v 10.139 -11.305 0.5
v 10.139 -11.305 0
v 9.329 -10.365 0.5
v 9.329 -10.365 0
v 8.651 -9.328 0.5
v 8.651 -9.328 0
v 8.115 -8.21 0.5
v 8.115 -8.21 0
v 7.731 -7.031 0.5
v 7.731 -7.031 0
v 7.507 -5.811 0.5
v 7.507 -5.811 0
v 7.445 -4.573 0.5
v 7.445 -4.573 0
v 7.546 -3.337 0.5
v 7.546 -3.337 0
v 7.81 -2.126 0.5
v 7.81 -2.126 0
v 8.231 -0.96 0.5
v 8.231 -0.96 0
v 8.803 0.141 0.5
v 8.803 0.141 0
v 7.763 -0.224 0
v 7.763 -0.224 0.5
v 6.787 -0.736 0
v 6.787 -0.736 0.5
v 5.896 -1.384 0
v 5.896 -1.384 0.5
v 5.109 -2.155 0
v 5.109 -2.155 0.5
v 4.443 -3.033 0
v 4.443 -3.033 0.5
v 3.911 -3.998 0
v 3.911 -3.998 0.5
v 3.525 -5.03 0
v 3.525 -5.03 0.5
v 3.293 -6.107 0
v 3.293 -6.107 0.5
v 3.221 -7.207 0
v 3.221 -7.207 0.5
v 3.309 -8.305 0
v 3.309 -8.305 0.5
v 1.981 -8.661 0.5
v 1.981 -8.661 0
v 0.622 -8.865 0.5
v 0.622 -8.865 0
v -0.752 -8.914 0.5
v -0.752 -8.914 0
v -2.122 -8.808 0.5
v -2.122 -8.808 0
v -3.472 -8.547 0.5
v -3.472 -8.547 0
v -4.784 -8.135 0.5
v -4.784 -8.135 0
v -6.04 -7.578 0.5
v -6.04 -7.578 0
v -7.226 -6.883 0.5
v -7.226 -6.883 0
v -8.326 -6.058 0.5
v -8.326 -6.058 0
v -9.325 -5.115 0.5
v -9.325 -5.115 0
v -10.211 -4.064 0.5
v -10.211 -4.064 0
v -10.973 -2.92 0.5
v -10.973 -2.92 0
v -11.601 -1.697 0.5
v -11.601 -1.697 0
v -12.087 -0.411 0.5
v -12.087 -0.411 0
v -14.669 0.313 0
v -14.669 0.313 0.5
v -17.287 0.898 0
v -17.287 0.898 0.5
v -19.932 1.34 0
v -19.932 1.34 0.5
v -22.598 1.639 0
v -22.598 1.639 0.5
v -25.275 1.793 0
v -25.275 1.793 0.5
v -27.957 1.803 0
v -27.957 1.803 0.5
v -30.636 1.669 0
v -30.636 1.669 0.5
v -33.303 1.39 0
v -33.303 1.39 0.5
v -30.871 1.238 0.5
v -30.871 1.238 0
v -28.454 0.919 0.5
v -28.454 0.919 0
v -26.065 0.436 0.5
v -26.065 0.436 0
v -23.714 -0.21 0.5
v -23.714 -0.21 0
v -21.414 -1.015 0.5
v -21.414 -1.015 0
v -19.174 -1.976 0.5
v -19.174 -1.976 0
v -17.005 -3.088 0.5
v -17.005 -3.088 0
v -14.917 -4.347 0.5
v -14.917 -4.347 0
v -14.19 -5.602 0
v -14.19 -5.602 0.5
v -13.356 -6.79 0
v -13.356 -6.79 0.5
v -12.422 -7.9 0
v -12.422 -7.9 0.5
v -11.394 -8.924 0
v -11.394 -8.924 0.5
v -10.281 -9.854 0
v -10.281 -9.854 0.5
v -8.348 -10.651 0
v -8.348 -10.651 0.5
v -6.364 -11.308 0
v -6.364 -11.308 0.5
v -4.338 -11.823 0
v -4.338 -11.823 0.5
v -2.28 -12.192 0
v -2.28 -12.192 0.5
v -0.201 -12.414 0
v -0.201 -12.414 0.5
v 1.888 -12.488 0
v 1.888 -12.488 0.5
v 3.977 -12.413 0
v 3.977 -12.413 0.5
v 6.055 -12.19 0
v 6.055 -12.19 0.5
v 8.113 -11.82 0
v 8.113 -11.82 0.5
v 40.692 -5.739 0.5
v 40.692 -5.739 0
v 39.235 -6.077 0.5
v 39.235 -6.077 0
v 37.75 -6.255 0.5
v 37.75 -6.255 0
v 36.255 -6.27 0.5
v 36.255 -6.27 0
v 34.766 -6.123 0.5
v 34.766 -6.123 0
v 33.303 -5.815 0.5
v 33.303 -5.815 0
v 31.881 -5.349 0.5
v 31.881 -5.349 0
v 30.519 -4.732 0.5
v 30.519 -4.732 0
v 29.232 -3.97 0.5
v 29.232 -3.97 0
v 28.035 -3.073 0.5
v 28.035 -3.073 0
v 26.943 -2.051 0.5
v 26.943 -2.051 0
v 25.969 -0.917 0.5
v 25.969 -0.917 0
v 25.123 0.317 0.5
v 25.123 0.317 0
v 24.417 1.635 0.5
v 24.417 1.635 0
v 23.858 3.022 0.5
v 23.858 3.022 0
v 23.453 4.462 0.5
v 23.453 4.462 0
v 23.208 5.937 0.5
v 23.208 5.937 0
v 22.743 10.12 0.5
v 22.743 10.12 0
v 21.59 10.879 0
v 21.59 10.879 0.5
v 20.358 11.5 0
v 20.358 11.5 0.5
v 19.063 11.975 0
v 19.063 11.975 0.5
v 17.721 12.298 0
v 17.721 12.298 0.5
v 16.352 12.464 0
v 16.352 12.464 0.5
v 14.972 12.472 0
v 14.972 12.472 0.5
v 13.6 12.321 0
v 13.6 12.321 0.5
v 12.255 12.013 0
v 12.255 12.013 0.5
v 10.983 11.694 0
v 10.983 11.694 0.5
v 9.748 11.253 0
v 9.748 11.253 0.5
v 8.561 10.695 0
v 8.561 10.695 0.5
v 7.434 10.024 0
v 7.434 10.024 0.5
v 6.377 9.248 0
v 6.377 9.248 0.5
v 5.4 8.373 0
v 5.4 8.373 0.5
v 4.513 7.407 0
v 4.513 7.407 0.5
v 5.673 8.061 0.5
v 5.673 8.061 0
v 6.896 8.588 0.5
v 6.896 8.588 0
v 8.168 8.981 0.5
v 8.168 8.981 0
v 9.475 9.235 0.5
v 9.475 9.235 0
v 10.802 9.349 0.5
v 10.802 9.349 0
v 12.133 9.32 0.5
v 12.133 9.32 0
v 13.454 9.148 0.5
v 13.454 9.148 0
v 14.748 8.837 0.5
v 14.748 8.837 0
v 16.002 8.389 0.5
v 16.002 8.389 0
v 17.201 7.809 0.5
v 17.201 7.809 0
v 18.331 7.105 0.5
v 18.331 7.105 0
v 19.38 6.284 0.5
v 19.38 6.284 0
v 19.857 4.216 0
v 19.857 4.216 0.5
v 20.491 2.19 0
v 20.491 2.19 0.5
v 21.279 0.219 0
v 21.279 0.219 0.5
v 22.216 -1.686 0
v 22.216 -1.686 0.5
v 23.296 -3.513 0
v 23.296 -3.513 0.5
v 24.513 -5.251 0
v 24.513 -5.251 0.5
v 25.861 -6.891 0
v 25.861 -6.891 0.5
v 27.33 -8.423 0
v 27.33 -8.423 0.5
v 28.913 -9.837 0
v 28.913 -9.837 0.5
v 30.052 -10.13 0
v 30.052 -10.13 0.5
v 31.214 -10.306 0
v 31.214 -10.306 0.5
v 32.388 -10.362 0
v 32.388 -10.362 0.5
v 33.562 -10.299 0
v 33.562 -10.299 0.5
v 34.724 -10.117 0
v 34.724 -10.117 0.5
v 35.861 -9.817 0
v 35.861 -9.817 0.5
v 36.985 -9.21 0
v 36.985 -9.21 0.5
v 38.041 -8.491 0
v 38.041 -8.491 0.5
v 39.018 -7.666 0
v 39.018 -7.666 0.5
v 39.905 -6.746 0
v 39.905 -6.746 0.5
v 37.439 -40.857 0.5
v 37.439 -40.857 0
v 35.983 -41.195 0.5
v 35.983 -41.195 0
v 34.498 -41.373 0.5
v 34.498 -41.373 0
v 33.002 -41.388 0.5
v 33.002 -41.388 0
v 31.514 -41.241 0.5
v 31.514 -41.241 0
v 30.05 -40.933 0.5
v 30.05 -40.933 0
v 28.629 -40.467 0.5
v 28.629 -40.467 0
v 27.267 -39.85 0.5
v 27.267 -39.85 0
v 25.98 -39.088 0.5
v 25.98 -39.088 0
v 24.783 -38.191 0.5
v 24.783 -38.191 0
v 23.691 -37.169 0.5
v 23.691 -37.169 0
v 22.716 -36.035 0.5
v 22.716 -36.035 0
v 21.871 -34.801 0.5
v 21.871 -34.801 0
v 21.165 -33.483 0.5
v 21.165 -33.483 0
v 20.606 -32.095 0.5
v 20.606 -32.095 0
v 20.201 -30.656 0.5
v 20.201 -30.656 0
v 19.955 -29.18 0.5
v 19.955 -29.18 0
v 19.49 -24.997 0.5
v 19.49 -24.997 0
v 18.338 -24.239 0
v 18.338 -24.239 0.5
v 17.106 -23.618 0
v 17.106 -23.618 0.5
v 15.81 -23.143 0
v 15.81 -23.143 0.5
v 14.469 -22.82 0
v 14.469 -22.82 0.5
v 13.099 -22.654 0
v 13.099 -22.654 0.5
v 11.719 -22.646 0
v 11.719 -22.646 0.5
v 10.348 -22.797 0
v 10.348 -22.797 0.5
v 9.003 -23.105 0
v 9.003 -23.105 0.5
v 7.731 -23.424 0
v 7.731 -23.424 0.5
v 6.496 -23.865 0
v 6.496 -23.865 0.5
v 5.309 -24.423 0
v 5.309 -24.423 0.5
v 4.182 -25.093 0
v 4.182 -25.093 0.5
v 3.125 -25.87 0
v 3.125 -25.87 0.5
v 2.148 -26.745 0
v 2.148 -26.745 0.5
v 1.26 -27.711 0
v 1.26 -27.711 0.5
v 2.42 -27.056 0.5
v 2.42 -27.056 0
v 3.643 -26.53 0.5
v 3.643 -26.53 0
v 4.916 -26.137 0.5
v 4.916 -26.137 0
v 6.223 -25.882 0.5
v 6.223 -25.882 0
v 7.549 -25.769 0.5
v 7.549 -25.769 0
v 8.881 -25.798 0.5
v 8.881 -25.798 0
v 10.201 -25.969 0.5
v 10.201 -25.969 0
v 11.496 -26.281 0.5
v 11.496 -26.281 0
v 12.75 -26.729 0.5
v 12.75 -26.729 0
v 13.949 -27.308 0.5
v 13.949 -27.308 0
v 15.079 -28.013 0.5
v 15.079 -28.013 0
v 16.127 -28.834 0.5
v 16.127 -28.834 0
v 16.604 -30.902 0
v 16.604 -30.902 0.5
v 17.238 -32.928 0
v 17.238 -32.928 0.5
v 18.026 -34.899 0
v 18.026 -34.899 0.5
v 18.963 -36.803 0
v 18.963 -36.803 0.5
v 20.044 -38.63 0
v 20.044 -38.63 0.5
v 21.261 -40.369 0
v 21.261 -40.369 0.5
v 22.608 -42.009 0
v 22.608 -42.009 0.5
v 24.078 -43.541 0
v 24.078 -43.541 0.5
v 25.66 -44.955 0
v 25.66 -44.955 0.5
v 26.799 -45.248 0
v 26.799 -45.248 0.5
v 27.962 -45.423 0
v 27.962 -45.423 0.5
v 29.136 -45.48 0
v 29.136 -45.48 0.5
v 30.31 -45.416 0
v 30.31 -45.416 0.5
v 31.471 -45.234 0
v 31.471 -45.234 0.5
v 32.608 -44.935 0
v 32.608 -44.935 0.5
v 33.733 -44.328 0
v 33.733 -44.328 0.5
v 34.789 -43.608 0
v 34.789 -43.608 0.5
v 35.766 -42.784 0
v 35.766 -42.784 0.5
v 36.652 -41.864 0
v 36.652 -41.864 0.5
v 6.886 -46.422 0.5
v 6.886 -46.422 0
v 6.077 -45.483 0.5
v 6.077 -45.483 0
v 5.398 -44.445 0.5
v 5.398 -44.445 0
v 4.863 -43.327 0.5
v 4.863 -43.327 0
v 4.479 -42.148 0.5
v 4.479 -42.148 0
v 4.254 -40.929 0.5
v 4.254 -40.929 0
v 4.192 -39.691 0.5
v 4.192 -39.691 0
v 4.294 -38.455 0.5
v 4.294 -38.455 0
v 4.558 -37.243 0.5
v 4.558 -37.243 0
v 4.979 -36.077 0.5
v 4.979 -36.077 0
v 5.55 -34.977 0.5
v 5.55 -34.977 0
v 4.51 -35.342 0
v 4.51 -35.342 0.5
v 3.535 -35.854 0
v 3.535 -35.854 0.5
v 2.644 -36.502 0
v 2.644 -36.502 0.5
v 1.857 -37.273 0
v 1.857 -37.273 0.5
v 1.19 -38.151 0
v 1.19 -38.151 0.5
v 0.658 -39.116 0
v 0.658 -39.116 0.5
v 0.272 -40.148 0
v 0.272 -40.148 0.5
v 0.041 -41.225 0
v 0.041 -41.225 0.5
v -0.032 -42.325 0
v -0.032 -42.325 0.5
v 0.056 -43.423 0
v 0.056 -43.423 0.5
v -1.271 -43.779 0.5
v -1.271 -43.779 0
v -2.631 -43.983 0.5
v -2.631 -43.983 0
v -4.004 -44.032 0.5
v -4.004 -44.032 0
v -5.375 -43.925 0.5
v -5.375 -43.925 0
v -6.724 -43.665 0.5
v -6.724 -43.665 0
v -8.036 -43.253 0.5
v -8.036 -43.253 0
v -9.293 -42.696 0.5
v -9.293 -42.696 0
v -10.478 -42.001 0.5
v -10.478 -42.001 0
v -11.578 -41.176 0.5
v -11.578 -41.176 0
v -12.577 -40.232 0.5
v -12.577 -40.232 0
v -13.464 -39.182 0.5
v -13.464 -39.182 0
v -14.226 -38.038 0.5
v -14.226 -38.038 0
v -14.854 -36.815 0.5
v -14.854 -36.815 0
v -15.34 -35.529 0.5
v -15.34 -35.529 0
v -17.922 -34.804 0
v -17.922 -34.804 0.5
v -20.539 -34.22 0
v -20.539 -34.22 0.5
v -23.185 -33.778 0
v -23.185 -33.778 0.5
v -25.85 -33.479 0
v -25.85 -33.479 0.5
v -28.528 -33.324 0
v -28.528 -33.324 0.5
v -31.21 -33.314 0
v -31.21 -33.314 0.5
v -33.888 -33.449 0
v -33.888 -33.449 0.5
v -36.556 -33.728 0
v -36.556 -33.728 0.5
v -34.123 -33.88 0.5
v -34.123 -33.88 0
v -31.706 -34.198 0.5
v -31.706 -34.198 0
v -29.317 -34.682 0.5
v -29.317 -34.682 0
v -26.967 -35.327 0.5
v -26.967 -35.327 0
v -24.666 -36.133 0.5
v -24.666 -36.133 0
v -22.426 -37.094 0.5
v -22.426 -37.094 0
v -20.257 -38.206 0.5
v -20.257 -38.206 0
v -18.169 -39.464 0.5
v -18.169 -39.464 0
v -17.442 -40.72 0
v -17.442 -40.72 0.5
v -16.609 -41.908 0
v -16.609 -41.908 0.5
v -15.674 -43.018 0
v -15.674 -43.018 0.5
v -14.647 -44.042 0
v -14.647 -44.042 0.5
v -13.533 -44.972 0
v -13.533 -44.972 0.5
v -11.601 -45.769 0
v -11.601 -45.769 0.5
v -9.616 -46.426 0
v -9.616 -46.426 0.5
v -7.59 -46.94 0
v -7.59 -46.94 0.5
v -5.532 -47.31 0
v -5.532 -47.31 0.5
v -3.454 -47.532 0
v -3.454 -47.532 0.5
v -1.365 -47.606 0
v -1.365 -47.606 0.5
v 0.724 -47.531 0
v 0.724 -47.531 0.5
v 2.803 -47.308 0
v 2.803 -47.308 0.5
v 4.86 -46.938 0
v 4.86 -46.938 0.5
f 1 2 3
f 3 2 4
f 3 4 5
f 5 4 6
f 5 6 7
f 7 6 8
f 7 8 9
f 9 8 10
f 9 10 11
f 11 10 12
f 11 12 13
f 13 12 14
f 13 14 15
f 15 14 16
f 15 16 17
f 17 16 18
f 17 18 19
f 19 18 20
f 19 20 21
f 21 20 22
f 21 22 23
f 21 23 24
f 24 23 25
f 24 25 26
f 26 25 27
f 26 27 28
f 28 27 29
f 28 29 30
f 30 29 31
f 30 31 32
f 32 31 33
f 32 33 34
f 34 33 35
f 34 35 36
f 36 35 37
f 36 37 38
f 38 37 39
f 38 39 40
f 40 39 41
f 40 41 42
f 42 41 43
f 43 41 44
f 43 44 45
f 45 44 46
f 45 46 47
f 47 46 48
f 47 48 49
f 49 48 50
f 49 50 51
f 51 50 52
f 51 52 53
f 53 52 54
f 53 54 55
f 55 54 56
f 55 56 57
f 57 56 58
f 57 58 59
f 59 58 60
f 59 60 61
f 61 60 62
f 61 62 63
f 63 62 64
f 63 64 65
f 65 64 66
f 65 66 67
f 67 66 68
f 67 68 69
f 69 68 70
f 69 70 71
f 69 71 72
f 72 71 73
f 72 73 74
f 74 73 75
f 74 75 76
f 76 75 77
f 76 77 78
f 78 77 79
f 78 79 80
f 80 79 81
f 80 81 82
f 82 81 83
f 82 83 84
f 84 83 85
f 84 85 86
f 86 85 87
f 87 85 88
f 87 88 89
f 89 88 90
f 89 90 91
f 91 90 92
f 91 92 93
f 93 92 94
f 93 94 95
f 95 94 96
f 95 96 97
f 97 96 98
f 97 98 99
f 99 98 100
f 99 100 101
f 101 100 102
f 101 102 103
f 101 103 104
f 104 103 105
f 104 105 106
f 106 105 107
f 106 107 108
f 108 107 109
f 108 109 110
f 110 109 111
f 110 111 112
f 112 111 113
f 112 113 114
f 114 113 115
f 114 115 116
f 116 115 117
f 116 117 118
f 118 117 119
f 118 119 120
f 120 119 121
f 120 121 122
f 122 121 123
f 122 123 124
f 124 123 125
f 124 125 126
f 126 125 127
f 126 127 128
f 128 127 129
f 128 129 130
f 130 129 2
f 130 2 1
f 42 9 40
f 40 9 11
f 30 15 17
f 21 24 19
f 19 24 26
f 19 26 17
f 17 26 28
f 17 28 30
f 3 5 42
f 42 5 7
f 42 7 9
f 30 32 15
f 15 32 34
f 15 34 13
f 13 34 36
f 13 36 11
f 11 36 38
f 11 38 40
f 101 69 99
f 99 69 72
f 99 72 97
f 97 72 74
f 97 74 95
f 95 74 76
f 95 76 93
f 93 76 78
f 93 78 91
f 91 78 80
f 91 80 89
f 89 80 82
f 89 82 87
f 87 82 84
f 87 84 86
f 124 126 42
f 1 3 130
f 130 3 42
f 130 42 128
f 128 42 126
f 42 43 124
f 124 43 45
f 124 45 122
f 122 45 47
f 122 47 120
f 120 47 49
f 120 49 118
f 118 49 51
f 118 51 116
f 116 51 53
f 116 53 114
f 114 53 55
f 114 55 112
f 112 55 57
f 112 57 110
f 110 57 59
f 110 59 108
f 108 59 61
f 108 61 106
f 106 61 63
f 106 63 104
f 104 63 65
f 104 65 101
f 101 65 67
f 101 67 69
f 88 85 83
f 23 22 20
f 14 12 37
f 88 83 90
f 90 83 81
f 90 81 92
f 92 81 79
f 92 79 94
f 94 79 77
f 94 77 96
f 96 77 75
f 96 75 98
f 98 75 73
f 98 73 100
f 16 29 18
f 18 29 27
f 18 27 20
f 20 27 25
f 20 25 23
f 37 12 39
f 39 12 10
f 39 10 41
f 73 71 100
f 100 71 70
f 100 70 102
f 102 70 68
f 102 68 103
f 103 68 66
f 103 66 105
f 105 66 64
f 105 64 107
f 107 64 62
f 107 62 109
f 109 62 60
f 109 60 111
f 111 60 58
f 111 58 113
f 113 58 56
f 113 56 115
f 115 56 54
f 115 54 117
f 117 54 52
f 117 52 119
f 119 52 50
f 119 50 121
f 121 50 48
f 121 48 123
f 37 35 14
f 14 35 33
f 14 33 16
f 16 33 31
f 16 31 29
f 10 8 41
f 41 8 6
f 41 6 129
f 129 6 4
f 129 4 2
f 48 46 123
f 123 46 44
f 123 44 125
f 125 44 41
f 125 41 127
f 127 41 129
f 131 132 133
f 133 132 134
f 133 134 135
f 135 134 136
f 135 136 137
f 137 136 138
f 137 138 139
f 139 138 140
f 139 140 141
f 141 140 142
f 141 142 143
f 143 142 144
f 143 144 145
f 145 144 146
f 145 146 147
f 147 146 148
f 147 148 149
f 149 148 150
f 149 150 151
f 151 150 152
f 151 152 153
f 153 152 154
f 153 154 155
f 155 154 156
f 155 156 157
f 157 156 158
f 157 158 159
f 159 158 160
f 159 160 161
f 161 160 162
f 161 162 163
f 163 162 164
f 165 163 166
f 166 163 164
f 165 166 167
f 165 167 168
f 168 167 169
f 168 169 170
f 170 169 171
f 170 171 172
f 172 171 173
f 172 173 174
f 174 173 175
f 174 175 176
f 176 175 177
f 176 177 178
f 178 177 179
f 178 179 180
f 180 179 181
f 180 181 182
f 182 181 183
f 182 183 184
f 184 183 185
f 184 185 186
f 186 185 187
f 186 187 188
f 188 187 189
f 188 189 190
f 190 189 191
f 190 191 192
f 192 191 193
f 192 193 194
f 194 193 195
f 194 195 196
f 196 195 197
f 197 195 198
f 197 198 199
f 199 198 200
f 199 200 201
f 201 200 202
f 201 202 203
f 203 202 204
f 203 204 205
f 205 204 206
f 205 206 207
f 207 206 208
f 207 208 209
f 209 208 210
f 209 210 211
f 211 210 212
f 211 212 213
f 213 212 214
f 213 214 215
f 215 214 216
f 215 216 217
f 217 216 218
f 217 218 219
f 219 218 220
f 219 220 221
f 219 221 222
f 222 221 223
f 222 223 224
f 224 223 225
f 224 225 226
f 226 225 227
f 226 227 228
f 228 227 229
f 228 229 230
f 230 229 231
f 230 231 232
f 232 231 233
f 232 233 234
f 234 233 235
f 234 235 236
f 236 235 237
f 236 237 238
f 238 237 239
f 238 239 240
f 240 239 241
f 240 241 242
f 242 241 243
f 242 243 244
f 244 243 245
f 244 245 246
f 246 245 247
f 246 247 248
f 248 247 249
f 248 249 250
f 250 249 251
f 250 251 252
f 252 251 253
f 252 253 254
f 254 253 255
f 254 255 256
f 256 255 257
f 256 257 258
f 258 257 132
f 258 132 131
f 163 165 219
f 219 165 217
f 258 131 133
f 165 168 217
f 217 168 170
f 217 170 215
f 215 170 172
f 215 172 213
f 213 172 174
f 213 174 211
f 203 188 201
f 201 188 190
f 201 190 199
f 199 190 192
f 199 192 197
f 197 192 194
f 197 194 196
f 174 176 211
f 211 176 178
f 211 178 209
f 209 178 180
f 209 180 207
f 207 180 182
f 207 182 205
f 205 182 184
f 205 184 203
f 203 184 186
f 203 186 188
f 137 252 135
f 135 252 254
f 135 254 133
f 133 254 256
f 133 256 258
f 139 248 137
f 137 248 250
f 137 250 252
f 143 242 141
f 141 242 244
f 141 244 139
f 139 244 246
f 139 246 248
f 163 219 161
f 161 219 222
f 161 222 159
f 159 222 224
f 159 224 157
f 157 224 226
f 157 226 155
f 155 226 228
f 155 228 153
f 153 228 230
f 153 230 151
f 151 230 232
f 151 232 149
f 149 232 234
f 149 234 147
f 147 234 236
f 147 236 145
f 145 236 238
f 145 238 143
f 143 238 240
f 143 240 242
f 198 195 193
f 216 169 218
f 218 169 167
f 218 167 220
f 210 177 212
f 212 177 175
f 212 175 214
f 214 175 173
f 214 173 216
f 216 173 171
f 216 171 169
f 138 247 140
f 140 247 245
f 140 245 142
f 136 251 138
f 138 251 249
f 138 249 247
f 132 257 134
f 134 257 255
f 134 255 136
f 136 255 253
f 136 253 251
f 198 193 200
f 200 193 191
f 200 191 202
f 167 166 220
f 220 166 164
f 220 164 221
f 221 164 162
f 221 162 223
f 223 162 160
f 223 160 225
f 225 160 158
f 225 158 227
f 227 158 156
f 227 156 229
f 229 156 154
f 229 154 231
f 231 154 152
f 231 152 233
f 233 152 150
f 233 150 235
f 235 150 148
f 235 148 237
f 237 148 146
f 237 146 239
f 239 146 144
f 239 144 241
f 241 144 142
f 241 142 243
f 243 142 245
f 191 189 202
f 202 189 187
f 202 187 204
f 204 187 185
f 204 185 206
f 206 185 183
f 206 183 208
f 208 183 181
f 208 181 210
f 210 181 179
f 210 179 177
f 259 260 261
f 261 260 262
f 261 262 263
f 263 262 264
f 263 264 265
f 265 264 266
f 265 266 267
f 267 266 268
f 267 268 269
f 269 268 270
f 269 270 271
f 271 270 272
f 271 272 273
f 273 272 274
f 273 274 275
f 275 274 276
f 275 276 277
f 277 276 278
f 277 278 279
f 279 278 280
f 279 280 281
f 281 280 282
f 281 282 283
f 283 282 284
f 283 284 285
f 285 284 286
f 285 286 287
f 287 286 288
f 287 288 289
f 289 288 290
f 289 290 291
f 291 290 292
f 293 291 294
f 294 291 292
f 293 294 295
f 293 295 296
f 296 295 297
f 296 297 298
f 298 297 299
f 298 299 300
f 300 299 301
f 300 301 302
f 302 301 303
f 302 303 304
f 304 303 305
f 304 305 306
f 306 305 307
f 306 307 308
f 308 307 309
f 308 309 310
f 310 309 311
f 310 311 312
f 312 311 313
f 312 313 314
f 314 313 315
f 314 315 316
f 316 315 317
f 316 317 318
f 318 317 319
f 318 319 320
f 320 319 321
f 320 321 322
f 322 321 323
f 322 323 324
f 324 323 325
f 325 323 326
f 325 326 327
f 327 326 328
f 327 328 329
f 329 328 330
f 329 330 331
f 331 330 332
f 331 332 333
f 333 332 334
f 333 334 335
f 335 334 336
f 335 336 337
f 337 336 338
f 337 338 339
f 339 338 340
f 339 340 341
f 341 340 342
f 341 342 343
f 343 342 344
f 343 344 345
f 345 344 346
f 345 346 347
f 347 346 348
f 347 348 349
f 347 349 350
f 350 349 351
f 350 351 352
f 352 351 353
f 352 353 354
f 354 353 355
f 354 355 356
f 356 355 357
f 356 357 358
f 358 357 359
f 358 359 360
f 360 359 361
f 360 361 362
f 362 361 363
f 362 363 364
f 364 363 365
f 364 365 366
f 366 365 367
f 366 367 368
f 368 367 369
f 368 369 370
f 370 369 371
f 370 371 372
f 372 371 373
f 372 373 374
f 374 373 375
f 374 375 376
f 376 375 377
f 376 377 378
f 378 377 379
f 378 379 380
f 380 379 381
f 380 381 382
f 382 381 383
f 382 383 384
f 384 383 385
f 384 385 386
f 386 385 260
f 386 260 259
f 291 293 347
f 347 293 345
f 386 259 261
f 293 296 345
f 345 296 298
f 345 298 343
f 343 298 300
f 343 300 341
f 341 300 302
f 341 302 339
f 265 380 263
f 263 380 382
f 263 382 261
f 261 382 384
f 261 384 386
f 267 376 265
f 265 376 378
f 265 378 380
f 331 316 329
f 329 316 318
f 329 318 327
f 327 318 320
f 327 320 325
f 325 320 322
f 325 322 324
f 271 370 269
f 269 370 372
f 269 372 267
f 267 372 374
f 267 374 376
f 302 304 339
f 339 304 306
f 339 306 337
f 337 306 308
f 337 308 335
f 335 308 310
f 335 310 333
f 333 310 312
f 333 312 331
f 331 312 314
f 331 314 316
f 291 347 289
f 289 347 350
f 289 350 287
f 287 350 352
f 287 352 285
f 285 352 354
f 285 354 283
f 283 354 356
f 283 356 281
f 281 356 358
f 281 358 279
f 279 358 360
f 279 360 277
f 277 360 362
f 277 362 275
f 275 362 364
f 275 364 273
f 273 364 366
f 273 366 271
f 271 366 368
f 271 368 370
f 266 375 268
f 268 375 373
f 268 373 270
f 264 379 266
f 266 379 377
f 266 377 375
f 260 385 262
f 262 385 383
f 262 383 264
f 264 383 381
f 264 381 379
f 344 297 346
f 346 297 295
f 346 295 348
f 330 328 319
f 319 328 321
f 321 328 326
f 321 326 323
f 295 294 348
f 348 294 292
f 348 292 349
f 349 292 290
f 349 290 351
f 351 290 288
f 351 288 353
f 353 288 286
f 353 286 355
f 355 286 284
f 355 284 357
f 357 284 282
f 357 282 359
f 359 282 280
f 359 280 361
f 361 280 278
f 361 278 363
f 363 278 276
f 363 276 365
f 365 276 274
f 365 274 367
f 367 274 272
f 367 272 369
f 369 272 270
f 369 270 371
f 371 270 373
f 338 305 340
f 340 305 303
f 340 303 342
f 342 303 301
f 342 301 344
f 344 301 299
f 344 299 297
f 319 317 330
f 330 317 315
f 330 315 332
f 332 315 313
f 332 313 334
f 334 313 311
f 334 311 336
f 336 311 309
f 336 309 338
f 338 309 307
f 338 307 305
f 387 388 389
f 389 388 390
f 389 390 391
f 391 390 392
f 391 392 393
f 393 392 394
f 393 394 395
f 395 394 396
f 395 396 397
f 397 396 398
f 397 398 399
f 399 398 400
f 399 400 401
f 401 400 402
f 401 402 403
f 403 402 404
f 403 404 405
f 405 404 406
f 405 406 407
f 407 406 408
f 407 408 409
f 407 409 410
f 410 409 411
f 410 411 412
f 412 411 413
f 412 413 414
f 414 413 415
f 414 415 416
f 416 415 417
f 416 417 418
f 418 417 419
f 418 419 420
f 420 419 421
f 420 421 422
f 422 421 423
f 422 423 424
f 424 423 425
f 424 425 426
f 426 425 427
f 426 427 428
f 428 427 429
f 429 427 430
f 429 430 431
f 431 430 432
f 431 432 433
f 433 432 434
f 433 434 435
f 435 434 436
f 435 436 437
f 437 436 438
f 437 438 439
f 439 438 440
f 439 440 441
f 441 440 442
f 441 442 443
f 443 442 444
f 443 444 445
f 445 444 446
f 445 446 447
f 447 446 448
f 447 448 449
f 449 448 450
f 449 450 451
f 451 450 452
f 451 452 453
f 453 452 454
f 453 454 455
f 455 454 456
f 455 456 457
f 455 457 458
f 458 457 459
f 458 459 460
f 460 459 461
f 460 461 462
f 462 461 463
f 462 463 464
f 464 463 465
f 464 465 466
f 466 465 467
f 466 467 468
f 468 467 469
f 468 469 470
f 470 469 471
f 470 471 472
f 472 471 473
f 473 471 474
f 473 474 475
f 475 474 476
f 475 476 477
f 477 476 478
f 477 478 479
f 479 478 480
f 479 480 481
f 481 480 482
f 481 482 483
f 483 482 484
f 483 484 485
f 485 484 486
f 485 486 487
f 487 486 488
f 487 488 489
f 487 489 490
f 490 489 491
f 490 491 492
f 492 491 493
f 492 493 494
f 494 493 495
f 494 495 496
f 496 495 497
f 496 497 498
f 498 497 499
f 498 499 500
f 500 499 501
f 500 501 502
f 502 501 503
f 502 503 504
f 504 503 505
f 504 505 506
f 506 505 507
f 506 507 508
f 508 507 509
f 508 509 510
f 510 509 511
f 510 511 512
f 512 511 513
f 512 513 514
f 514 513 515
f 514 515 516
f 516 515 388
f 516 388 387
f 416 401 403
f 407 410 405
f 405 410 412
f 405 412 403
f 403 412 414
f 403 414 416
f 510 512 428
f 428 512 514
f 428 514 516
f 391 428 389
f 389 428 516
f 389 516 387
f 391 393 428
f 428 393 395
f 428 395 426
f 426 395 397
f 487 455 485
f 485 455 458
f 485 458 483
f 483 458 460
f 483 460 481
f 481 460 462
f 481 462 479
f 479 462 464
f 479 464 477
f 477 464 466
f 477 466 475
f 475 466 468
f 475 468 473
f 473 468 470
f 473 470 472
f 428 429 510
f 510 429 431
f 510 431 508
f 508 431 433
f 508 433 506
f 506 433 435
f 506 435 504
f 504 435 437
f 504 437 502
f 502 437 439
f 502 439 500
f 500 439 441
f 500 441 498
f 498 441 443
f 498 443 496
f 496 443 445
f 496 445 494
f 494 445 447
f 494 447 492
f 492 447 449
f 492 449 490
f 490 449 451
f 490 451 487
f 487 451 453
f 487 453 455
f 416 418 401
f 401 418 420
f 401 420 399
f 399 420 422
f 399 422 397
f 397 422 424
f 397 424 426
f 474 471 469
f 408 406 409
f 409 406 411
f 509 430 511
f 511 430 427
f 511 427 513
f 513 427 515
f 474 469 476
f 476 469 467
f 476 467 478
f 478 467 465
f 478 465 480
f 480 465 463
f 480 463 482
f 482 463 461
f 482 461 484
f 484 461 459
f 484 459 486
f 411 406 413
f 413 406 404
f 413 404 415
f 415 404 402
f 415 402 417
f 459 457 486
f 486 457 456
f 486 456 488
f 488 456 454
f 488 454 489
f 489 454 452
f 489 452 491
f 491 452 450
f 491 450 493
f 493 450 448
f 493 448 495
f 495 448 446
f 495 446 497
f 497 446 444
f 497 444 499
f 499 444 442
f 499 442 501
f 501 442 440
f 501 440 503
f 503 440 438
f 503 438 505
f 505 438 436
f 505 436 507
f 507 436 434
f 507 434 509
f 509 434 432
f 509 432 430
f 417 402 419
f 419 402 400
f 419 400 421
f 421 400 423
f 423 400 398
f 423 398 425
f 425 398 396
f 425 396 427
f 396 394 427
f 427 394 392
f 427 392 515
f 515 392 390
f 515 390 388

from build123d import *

# Parameters (mm, degrees)
EXTRUDE_1_DEPTH   = 0.5
EXTRUDE_1_2_DEPTH = 0.5
EXTRUDE_2_DEPTH   = 0.5
EXTRUDE_2_2_DEPTH = 0.5


with BuildPart() as part:
    # 스케치1 → 보스-돌출1 (new body)
    with BuildSketch(Plane.XY):
        with BuildLine():
            ThreePointArc((8.80264913, 0.140869244), (7.506632055, -5.81118181), (10.138692018, -11.304708216))
            ThreePointArc((10.138692018, -11.304708216), (-0.201362224, -12.414076053), (-10.280813271, -9.85437191))
            ThreePointArc((-10.280813271, -9.85437191), (-12.901179897, -7.354989134), (-14.917002582, -4.346718132))
            ThreePointArc((-14.917002582, -4.346718132), (-23.714318194, -0.209715139), (-33.303336459, 1.389748659))
            ThreePointArc((-33.303336459, 1.389748659), (-22.597655992, 1.638737324), (-12.087135719, -0.411275657))
            ThreePointArc((-12.087135719, -0.411275657), (-6.040259136, -7.578468463), (3.30881362, -8.305247475))
            ThreePointArc((3.30881362, -8.305247475), (4.442592157, -3.032911463), (8.80264913, 0.140869244))
        make_face()
    extrude(amount=EXTRUDE_1_DEPTH)


with BuildPart() as body_2:
    # 스케치1 → Extrude 1 2 (new body)
    with BuildSketch(Plane.XY):
        with BuildLine():
            ThreePointArc((23.207530181, 5.937314506), (29.232017356, -3.970373513), (40.691876207, -5.739091327))
            ThreePointArc((40.691876207, -5.739091327), (38.540272021, -8.090988252), (35.860596622, -9.817302093))
            ThreePointArc((35.860596622, -9.817302093), (32.388303853, -10.361902877), (28.912906874, -9.837476602))
            ThreePointArc((28.912906874, -9.837476602), (22.738240984, -2.609414461), (19.379772094, 6.283957671))
            ThreePointArc((19.379772094, 6.283957671), (12.133212194, 9.319636927), (4.512838786, 7.407076324))
            ThreePointArc((4.512838786, 7.407076324), (7.989536066, 10.373242432), (12.255402618, 12.01273867))
            ThreePointArc((12.255402618, 12.01273867), (17.721222854, 12.297674999), (22.742746753, 10.120365355))
            Line((22.742746753, 10.120365355), (23.207530181, 5.937314506))
        make_face()
    extrude(amount=EXTRUDE_1_2_DEPTH)


with BuildPart() as body_3:
    # 스케치1<3> → 보스-돌출2 (new body)
    with BuildSketch(Plane.XY):
        with BuildLine():
            ThreePointArc((19.95511172, -29.18045151), (25.979598894, -39.088139529), (37.439457746, -40.856857342))
            ThreePointArc((37.439457746, -40.856857342), (35.287853559, -43.208754268), (32.60817816, -44.935068109))
            ThreePointArc((32.60817816, -44.935068109), (29.135885392, -45.479668893), (25.660488413, -44.955242618))
            ThreePointArc((25.660488413, -44.955242618), (19.485822522, -37.727180477), (16.127353633, -28.833808345))
            ThreePointArc((16.127353633, -28.833808345), (8.880793733, -25.798129088), (1.260420325, -27.710689692))
            ThreePointArc((1.260420325, -27.710689692), (4.737117605, -24.744523584), (9.002984157, -23.105027346))
            ThreePointArc((9.002984157, -23.105027346), (14.468804392, -22.820091017), (19.490328292, -24.99740066))
            Line((19.490328292, -24.99740066), (19.95511172, -29.18045151))
        make_face()
    extrude(amount=EXTRUDE_2_DEPTH)


with BuildPart() as body_4:
    # 스케치1<3> → Extrude 2 2 (new body)
    with BuildSketch(Plane.XY):
        with BuildLine():
            ThreePointArc((5.550230669, -34.976896772), (4.254213594, -40.928947826), (6.886273557, -46.422474231))
            ThreePointArc((6.886273557, -46.422474231), (-3.453780685, -47.531842069), (-13.533231733, -44.972137926))
            ThreePointArc((-13.533231733, -44.972137926), (-16.153598359, -42.47275515), (-18.169421044, -39.464484148))
            ThreePointArc((-18.169421044, -39.464484148), (-26.966736655, -35.327481155), (-36.55575492, -33.728017357))
            ThreePointArc((-36.55575492, -33.728017357), (-25.850074453, -33.479028692), (-15.339554181, -35.529041673))
            ThreePointArc((-15.339554181, -35.529041673), (-9.292677597, -42.696234479), (0.056395159, -43.423013491))
            ThreePointArc((0.056395159, -43.423013491), (1.190173695, -38.150677479), (5.550230669, -34.976896772))
        make_face()
    extrude(amount=EXTRUDE_2_2_DEPTH)


solid = Compound([part.part, body_2.part, body_3.part, body_4.part])
